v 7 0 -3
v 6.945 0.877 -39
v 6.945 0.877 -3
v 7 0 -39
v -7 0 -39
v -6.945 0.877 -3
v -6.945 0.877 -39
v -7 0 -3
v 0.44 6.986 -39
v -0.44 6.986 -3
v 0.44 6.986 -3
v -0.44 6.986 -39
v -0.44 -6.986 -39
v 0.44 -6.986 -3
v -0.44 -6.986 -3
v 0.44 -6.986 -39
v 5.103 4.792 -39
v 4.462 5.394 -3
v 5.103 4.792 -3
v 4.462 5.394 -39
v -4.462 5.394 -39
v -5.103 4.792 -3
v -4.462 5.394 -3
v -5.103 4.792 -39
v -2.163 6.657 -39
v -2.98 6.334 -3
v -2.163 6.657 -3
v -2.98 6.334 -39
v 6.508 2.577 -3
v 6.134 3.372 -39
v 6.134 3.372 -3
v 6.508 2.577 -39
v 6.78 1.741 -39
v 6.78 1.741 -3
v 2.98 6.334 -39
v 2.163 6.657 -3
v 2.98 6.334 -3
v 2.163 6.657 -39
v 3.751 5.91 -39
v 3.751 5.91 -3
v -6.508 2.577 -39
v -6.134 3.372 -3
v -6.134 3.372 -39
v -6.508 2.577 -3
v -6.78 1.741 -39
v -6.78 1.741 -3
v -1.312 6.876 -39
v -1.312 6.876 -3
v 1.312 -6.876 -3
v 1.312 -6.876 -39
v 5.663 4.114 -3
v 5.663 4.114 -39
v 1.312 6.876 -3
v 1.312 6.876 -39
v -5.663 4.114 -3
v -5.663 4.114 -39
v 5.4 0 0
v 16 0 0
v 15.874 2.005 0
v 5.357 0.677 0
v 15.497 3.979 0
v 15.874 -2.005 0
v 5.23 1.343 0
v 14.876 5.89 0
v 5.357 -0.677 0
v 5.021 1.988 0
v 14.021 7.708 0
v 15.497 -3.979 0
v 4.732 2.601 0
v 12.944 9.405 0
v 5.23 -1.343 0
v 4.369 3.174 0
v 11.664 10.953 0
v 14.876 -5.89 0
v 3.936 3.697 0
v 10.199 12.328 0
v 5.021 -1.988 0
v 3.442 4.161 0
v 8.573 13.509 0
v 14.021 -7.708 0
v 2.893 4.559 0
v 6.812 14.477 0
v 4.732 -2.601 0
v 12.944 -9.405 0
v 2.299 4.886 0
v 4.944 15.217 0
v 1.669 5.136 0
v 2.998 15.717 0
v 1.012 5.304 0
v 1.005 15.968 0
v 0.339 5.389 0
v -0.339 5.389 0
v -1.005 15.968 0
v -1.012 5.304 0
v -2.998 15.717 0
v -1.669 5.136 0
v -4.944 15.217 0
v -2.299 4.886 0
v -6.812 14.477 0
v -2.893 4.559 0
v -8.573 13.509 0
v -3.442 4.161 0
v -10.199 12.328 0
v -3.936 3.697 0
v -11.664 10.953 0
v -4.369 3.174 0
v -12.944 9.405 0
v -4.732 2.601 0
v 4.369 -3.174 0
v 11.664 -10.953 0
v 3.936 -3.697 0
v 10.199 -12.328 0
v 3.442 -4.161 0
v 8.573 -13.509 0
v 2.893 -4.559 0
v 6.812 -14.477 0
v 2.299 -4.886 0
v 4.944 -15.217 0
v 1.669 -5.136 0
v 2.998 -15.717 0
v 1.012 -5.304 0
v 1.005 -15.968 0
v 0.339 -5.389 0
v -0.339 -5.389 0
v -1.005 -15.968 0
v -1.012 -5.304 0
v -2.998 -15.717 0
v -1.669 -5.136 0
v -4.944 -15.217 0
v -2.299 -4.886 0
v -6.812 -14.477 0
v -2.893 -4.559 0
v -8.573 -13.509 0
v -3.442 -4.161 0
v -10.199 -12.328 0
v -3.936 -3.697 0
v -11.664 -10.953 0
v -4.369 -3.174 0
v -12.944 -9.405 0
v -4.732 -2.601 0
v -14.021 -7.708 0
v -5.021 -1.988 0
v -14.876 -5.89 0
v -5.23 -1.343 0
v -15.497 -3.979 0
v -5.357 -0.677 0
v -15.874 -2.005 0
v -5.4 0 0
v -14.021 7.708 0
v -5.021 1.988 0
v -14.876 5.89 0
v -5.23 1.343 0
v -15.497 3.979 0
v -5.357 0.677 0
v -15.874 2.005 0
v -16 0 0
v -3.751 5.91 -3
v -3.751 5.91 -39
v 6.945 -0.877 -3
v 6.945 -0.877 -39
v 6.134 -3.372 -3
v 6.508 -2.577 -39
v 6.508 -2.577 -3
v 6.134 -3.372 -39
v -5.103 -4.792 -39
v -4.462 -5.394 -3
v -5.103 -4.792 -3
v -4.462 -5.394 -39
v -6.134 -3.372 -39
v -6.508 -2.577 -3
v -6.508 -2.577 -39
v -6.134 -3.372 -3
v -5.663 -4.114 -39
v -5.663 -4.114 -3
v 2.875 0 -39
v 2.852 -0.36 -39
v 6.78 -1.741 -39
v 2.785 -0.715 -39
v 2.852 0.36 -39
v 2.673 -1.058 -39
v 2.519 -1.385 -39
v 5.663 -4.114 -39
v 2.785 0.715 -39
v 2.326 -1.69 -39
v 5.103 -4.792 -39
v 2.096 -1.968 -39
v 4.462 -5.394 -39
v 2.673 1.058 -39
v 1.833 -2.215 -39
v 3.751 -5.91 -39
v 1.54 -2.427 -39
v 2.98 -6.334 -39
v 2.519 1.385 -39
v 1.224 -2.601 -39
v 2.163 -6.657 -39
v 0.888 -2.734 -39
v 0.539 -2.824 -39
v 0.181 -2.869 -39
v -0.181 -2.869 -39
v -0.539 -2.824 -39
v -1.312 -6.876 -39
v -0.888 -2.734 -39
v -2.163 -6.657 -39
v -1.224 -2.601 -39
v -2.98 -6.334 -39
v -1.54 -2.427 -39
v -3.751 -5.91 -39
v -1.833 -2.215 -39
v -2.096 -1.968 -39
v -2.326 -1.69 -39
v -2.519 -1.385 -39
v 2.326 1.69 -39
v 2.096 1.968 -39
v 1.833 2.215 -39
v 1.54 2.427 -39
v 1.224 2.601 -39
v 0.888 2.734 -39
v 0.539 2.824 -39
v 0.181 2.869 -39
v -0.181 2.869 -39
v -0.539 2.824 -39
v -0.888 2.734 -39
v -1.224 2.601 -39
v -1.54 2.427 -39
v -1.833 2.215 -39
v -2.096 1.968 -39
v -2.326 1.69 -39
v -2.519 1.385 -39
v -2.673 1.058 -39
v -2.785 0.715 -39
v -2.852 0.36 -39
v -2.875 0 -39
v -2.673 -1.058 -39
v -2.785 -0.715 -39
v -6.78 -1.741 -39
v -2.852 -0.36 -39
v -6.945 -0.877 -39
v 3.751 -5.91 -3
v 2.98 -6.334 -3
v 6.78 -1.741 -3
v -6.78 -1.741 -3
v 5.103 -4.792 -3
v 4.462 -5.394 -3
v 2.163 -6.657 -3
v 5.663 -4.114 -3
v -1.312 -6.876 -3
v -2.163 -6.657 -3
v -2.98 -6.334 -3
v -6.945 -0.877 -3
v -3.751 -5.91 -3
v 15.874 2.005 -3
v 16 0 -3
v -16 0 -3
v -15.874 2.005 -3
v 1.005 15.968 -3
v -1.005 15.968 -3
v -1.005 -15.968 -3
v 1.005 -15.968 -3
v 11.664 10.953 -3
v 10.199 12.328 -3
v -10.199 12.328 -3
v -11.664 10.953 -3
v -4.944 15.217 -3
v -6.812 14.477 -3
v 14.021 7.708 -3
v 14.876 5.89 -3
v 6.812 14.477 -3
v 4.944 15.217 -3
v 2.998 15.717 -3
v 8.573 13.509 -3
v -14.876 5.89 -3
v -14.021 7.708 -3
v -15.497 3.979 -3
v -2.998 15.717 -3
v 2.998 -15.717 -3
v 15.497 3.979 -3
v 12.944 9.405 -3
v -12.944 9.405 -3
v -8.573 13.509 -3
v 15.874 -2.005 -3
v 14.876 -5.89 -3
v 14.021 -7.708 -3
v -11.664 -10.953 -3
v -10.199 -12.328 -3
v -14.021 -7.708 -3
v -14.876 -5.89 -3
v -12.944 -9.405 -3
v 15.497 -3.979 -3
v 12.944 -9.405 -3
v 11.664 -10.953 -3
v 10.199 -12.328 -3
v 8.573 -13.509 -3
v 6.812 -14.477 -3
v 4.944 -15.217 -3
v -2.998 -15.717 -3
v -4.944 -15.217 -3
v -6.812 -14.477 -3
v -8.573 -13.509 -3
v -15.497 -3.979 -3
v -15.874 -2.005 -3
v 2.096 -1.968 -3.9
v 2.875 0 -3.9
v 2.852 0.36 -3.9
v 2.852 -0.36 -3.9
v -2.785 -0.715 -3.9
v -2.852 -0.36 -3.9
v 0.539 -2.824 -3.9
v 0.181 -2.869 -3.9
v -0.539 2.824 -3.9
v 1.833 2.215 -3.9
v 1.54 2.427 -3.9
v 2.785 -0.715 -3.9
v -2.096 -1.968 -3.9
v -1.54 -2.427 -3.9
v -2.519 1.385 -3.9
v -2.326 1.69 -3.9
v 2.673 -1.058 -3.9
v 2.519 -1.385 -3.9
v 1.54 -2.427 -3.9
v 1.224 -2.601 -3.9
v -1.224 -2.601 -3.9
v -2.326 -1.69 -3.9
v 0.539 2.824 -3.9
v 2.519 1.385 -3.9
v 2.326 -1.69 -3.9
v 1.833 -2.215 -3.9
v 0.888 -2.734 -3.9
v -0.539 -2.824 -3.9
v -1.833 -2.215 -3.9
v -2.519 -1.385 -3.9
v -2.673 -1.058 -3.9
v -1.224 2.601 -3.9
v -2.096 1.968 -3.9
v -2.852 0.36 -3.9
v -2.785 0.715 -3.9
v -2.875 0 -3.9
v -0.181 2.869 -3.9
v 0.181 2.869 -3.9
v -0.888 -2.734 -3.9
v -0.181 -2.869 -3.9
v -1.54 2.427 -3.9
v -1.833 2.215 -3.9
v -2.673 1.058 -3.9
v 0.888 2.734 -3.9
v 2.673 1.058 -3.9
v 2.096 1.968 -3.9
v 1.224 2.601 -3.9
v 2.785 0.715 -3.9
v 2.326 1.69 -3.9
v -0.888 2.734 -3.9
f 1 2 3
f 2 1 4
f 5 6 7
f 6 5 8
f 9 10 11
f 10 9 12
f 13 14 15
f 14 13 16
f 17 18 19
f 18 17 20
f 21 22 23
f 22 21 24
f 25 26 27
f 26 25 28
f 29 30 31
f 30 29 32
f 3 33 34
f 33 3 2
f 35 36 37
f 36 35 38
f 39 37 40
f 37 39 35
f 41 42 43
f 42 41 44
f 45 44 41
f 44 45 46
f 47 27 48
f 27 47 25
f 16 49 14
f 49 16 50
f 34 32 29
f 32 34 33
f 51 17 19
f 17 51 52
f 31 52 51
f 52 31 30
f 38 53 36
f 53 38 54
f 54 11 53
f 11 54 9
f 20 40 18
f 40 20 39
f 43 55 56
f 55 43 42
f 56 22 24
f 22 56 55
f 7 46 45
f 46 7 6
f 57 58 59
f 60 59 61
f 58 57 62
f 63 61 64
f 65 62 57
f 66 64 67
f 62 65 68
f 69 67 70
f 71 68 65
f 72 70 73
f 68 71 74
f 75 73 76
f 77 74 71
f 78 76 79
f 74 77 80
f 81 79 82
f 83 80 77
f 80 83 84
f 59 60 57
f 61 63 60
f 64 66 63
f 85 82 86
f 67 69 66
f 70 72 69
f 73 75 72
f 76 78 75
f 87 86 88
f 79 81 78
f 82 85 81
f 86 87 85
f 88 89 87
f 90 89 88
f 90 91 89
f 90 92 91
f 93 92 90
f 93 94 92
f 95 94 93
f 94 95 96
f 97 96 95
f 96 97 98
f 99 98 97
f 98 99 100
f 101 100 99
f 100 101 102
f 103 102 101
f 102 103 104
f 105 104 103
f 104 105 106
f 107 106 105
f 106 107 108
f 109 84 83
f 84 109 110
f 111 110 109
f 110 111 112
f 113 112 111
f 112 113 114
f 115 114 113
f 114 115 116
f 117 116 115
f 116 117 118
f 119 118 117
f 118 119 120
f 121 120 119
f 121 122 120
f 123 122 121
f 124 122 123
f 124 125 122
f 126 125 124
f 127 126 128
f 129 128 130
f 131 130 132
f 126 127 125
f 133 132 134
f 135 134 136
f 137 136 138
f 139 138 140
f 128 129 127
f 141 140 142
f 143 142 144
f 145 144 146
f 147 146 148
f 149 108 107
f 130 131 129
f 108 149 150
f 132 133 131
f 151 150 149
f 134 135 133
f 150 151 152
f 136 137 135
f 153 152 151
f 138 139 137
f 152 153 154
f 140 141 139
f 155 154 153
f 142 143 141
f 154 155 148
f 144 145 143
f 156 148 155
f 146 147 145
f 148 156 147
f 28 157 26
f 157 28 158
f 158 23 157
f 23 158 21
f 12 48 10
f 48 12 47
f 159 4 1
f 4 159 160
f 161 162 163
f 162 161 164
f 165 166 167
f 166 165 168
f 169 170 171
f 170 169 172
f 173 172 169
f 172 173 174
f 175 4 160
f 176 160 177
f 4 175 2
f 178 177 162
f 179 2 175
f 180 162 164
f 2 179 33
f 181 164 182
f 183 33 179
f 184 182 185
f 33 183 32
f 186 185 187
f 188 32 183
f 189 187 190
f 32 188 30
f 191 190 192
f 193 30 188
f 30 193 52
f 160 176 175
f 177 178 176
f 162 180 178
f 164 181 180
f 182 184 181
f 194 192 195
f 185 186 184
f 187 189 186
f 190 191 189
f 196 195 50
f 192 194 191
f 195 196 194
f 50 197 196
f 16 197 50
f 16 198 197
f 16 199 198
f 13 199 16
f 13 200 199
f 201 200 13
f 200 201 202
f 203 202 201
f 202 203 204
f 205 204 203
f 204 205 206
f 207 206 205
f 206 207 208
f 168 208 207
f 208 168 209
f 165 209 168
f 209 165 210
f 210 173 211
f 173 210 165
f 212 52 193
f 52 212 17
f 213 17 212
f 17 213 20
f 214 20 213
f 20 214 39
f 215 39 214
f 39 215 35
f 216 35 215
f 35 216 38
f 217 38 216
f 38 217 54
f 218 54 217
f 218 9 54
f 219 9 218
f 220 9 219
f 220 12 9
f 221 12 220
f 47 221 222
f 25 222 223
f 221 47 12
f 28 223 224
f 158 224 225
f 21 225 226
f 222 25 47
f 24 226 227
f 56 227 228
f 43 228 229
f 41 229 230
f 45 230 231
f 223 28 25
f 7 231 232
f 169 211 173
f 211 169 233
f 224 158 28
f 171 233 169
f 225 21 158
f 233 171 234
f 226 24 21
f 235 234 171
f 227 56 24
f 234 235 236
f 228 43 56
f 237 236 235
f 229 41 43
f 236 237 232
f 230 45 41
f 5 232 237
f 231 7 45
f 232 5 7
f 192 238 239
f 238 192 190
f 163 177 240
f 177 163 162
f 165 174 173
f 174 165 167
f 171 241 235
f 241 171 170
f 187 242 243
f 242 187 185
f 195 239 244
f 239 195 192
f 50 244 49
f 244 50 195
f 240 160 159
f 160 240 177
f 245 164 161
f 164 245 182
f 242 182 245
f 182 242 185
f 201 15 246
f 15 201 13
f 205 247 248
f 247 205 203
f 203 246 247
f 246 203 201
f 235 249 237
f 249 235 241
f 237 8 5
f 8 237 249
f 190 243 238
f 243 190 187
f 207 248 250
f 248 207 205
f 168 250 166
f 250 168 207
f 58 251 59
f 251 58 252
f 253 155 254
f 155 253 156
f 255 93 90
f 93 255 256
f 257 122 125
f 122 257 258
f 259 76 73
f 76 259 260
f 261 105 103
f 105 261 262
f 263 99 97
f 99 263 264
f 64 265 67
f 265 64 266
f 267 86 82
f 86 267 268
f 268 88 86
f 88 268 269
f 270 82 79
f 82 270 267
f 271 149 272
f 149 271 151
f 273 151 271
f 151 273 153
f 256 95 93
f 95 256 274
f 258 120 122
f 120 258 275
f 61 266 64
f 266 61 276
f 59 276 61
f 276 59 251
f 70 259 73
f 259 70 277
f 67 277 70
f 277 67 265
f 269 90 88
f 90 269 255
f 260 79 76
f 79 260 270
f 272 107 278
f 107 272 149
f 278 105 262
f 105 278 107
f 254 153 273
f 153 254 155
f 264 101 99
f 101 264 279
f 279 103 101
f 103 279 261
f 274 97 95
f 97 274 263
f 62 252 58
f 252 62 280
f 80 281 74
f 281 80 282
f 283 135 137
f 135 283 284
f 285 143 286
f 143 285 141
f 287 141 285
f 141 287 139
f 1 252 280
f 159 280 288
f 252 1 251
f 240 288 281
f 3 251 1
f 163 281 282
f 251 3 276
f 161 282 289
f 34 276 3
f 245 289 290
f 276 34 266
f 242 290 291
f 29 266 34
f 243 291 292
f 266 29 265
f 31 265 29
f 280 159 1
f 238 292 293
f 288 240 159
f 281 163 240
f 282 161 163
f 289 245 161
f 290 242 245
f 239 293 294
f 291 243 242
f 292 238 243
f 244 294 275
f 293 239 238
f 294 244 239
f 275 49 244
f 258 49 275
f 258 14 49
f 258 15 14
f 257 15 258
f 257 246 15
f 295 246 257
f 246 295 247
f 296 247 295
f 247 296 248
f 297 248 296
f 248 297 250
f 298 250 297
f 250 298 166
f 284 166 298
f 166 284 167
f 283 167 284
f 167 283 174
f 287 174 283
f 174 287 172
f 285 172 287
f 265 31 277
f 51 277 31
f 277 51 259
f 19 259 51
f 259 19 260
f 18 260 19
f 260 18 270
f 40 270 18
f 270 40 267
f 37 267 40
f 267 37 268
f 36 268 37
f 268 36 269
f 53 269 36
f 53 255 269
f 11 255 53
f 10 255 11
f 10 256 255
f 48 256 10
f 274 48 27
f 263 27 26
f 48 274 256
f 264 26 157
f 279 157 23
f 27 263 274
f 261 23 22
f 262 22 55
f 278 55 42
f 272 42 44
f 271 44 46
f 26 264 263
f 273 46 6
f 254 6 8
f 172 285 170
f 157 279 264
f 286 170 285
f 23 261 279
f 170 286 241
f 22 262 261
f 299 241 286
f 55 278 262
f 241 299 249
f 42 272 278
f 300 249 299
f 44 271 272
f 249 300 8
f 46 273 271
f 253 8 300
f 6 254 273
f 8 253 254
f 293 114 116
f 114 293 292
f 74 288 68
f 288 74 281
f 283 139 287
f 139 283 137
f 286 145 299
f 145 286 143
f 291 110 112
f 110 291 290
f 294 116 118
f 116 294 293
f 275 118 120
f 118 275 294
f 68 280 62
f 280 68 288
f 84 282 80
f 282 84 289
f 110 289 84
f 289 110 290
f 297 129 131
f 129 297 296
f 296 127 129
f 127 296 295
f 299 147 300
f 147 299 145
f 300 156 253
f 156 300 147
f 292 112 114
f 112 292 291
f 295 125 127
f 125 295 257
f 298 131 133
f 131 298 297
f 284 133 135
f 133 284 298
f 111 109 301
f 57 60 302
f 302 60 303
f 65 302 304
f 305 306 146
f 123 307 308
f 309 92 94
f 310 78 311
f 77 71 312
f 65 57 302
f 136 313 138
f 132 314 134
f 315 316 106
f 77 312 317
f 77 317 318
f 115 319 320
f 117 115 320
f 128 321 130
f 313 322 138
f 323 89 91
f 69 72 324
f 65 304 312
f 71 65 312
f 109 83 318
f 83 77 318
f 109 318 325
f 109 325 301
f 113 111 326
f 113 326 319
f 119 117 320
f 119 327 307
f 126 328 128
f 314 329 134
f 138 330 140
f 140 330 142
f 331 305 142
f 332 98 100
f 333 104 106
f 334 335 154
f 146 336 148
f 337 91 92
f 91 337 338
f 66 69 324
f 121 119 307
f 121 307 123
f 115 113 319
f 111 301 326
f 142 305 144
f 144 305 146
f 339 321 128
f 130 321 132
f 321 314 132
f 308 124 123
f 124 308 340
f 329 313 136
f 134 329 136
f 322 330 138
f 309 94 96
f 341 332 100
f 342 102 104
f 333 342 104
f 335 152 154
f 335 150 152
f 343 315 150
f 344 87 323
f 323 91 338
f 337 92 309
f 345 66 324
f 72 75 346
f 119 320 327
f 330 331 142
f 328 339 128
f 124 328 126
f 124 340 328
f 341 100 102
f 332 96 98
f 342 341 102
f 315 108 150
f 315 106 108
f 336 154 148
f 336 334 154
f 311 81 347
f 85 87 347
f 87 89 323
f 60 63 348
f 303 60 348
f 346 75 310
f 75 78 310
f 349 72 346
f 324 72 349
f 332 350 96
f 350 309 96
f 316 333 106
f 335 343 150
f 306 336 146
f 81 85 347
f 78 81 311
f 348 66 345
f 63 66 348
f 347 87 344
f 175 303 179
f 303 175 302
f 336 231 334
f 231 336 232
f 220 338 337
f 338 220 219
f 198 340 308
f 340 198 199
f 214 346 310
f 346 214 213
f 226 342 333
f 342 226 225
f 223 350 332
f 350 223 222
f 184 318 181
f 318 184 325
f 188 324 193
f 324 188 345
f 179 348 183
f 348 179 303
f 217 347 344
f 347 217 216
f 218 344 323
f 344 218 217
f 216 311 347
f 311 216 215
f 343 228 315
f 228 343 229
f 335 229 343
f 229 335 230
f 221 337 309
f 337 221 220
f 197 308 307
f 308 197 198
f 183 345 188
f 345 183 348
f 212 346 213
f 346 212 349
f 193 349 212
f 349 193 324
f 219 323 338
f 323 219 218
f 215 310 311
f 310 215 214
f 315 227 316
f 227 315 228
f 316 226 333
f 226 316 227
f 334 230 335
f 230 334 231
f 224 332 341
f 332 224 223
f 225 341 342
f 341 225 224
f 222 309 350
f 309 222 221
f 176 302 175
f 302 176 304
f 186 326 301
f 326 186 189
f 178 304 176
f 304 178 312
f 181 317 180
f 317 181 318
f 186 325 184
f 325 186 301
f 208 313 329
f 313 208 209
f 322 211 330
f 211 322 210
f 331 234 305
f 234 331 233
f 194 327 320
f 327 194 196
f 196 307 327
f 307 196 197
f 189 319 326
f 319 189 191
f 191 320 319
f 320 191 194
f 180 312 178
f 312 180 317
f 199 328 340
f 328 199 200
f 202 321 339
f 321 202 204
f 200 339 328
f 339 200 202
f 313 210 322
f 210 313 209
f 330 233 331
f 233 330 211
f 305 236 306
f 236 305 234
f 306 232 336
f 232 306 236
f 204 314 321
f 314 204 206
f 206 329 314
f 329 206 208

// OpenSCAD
$fn = 50;


difference() {
	union() {
		translate(v = [0, 0, -39.0000000000]) {
			cylinder(h = 39, r = 7.0000000000);
		}
		translate(v = [0, 0, -3.0000000000]) {
			cylinder(h = 3, r = 16.0000000000);
		}
	}
	union() {
		translate(v = [0, 0, 0]) {
			rotate(a = [0, 0, 0]) {
				difference() {
					union() {
						#translate(v = [0, 0, -39.0000000000]) {
							cylinder(h = 39, r = 2.6000000000);
						}
						#translate(v = [0, 0, -3.9000000000]) {
							cylinder(h = 3.9000000000, r1 = 2.8750000000, r2 = 5.4000000000);
						}
						#translate(v = [0, 0, -39.0000000000]) {
							cylinder(h = 39, r = 2.8750000000);
						}
						#translate(v = [0, 0, -39.0000000000]) {
							cylinder(h = 39, r = 2.6000000000);
						}
					}
					union();
				}
			}
		}
	}
}
